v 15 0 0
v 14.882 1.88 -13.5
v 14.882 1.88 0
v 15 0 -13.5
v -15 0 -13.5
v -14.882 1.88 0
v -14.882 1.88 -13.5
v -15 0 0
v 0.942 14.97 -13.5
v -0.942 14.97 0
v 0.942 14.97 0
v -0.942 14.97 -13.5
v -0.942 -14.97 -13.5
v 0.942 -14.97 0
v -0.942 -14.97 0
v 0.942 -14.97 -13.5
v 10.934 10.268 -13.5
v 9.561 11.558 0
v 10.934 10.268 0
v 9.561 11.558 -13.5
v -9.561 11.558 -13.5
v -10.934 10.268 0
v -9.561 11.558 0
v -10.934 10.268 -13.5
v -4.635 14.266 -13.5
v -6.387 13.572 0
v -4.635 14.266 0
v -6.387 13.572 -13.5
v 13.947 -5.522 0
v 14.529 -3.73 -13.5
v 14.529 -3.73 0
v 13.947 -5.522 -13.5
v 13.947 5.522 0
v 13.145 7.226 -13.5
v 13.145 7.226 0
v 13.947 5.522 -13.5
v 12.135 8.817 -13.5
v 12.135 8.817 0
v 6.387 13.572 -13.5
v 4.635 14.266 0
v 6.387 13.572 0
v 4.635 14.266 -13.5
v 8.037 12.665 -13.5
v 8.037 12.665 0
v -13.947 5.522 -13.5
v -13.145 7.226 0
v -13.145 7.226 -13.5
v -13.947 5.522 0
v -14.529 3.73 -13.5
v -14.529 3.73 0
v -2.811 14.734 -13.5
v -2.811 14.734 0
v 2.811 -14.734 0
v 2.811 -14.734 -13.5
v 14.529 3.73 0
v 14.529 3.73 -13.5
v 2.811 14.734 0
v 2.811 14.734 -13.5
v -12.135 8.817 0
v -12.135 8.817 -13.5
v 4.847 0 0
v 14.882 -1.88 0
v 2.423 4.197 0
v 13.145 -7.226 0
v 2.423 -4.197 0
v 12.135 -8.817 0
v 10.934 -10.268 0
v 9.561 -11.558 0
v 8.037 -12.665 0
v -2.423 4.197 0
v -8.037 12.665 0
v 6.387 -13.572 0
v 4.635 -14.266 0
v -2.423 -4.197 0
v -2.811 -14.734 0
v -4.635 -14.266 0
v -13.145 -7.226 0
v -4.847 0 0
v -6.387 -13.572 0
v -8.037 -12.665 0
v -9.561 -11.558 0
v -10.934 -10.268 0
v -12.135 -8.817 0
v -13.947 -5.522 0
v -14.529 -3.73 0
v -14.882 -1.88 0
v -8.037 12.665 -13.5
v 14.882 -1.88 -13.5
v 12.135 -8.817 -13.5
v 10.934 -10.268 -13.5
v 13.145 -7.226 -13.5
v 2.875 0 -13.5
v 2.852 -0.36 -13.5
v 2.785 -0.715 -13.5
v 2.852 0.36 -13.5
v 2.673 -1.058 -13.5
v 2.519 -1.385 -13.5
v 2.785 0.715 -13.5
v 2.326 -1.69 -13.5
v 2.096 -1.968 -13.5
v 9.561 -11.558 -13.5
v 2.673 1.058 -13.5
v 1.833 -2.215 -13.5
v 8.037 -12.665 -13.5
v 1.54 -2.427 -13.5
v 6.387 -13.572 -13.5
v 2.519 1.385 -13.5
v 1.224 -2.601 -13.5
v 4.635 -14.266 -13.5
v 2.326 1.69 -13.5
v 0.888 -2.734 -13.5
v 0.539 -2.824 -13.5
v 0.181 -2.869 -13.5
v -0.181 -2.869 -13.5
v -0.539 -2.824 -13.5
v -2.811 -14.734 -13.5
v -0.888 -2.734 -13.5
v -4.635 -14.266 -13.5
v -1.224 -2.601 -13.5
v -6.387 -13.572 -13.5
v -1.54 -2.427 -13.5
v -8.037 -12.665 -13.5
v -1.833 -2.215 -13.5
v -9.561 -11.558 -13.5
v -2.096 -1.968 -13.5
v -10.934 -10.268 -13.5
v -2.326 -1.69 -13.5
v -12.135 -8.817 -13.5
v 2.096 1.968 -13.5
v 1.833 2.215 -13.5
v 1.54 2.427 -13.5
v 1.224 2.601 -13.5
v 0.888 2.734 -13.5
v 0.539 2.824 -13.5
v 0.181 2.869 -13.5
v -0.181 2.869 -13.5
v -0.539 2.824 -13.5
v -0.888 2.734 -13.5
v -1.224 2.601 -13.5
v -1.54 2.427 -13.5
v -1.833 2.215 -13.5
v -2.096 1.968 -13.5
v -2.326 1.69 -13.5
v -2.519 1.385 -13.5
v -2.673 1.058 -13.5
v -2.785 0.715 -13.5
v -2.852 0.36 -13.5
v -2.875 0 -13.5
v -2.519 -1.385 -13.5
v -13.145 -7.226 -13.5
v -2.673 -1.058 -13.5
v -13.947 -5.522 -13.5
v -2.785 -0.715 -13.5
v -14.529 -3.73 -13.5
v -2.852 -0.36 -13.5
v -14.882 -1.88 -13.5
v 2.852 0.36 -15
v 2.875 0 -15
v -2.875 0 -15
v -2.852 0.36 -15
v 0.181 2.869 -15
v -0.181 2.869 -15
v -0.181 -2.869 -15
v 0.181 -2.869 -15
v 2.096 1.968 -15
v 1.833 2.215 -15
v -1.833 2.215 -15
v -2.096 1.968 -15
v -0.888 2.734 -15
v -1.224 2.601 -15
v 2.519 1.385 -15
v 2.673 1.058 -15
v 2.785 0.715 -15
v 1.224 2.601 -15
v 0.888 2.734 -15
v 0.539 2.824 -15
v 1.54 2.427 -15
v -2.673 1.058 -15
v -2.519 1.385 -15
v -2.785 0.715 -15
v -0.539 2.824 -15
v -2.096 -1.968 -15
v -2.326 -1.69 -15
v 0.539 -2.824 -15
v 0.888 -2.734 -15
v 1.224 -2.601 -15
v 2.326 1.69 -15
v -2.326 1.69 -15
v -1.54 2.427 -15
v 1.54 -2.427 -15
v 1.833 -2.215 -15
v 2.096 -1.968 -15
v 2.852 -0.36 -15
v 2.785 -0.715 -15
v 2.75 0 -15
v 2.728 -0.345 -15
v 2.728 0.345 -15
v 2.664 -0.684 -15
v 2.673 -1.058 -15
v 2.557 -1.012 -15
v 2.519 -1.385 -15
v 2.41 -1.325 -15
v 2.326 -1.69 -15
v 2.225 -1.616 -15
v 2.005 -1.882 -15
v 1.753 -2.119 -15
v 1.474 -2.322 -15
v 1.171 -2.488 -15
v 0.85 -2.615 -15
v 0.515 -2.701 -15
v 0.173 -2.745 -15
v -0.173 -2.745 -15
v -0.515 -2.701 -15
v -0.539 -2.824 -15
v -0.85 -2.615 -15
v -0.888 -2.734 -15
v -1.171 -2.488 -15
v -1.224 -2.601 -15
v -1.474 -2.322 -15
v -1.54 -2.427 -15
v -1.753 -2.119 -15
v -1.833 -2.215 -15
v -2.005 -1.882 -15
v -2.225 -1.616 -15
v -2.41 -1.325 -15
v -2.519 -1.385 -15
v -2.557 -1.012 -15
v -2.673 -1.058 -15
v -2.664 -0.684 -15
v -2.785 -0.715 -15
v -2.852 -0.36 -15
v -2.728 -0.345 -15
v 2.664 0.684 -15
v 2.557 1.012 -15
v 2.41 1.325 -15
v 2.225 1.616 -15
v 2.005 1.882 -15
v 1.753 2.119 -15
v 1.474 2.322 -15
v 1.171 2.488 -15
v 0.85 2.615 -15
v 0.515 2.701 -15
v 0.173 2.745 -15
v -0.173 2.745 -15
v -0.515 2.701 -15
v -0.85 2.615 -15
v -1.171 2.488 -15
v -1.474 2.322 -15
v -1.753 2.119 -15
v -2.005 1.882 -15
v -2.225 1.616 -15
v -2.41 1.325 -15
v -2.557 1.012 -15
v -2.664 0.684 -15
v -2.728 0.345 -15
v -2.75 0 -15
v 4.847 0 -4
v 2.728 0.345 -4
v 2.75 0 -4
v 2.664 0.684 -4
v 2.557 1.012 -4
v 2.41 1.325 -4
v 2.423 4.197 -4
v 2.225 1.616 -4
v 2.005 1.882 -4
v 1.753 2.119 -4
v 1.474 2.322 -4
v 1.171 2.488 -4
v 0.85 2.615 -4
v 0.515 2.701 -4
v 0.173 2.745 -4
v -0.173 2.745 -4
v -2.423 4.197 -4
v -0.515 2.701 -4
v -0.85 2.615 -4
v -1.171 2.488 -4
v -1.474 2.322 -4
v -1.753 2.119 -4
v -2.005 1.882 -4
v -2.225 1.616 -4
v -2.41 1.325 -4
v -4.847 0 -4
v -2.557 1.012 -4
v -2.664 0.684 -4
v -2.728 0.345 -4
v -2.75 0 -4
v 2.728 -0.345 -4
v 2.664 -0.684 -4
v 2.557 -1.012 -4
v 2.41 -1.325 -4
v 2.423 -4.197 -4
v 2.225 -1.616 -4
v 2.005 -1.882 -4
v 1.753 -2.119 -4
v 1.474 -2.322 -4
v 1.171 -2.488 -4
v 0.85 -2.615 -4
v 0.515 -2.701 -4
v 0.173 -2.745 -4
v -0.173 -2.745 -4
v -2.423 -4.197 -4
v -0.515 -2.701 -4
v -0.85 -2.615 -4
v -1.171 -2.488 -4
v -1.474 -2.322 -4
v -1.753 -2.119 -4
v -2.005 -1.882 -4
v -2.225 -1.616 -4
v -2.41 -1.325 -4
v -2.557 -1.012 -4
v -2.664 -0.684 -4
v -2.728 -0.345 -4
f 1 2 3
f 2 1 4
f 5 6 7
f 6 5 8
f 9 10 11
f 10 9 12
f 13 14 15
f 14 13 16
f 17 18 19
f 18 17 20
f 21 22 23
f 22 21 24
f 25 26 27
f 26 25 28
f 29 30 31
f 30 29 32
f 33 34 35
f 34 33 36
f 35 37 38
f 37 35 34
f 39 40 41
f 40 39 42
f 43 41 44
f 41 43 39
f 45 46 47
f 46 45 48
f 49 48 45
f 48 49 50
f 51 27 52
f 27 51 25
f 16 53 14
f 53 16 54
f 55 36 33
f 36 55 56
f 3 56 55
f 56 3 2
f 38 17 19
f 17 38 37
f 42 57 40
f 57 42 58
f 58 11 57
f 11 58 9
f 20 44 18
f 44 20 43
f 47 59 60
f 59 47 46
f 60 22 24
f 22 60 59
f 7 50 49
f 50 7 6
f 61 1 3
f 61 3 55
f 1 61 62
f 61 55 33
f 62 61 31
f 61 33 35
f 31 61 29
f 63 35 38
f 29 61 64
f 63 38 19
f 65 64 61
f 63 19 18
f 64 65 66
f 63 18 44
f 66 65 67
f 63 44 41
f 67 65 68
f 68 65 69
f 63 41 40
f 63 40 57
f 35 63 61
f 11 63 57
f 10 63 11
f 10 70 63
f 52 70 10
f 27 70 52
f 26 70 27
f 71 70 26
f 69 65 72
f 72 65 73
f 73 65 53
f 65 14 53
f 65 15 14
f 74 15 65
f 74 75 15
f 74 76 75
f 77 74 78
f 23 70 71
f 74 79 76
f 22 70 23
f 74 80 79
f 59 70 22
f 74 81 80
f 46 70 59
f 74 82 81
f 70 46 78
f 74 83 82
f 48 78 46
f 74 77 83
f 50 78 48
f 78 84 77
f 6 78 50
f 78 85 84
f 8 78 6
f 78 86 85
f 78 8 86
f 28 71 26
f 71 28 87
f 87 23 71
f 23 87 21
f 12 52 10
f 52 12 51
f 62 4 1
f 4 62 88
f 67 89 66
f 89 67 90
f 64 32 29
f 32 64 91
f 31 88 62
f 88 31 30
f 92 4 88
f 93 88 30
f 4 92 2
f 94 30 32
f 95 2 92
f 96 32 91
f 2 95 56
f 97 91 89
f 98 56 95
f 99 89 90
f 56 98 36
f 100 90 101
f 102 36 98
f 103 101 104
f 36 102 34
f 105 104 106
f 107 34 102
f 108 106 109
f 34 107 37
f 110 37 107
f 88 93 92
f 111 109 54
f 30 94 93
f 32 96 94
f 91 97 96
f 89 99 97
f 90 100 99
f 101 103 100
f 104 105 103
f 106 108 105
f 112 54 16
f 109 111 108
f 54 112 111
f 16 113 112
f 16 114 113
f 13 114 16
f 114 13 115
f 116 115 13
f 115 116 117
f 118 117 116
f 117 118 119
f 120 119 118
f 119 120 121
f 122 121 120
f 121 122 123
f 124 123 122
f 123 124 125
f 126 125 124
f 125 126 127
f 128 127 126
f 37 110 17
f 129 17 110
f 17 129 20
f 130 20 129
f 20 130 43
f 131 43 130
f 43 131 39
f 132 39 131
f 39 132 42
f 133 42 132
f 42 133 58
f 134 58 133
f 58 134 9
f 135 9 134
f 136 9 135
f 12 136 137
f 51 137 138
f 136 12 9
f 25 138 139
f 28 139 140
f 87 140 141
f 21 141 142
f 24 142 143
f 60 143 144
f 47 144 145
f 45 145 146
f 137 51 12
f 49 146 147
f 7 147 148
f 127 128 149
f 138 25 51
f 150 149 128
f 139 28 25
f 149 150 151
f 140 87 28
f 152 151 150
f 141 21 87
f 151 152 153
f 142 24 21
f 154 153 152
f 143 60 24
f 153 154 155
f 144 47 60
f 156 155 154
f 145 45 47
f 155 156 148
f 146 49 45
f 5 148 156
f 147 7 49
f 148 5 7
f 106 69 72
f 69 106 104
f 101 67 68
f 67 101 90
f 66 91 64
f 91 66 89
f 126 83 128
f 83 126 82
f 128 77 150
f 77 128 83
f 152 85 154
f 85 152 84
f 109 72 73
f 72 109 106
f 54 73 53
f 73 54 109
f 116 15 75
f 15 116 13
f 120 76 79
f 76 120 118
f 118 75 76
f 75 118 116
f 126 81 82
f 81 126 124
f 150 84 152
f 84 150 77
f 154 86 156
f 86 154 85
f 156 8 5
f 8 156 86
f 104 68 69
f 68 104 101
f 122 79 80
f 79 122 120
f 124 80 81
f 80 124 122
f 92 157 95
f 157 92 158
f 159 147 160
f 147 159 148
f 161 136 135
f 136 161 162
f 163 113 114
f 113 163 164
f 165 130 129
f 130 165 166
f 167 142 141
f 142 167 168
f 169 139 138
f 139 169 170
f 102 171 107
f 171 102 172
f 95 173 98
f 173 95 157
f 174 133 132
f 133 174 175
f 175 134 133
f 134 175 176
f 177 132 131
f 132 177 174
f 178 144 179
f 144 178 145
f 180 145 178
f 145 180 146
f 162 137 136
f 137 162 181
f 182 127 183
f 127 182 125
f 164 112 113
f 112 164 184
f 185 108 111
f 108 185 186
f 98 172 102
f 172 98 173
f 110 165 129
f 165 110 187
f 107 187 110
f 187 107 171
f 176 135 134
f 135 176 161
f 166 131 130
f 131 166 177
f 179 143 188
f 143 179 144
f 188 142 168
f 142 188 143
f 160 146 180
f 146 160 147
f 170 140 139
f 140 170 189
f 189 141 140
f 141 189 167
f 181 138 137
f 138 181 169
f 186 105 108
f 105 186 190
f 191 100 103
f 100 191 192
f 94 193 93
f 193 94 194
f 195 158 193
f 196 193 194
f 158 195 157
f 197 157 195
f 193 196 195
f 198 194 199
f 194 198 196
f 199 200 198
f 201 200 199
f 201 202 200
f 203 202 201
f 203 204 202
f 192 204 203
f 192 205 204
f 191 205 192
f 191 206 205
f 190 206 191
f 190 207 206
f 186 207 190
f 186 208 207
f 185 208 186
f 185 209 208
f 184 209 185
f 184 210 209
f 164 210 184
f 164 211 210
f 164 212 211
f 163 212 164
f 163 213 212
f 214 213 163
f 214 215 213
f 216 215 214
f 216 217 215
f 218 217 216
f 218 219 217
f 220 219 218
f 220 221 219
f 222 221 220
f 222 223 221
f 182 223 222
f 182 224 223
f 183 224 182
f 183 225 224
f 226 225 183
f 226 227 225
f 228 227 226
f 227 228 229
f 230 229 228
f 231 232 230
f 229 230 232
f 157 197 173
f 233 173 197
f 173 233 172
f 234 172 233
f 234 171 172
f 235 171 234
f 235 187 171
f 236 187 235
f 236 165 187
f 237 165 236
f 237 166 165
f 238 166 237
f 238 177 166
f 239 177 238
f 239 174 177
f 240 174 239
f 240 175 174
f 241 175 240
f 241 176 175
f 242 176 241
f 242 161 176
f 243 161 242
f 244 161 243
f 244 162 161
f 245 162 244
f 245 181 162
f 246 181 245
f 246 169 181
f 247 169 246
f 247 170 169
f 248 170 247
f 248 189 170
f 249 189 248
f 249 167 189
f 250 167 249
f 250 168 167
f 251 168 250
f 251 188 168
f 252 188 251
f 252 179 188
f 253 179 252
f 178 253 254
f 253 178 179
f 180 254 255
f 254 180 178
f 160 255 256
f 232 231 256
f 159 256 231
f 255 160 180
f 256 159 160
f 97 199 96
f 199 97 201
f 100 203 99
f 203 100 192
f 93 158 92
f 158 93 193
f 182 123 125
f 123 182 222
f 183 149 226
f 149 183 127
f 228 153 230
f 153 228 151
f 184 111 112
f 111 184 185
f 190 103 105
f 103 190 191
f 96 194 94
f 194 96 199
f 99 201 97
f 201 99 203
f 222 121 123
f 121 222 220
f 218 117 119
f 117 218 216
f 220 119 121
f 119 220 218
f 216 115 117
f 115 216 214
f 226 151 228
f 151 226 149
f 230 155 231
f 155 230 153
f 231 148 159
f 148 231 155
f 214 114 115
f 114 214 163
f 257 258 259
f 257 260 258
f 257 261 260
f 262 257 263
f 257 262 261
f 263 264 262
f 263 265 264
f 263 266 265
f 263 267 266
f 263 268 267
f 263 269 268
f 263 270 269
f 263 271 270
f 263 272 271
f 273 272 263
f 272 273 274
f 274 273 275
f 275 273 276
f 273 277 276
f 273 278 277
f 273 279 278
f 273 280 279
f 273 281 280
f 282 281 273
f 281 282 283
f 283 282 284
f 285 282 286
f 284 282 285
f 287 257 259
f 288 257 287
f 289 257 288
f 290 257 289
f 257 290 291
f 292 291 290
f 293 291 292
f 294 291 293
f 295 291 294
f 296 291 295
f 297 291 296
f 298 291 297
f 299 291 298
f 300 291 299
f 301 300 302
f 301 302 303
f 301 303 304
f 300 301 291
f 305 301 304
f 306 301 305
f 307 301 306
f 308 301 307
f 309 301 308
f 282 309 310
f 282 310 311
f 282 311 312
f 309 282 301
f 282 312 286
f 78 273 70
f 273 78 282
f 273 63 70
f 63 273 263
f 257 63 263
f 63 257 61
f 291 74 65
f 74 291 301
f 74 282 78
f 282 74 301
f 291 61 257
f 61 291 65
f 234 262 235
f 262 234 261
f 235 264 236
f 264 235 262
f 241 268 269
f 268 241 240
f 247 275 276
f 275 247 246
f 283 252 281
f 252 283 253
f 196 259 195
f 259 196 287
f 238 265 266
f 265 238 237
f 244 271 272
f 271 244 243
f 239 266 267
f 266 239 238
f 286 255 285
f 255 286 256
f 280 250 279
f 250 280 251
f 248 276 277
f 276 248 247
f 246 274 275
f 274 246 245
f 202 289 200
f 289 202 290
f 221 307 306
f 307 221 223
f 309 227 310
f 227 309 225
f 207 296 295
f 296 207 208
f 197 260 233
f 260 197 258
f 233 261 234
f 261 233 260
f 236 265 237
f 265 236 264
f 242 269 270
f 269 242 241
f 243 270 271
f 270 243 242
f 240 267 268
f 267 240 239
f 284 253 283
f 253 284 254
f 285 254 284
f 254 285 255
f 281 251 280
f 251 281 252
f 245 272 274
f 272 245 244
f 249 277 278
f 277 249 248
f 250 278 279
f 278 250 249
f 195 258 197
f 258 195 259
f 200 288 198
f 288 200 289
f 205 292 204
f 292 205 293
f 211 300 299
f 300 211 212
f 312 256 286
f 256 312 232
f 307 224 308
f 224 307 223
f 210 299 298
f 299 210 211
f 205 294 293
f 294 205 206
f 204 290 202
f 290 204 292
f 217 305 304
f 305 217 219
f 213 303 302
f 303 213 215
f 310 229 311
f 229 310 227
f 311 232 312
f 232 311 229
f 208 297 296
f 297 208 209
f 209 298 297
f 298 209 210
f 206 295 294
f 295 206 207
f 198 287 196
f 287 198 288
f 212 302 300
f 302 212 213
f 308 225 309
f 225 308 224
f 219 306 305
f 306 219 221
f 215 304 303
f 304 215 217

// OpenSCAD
$fn = 50;


difference() {
	union() {
		translate(v = [0, 0, -13.5000000000]) {
			cylinder(h = 13.5000000000, r = 15.0000000000);
		}
		translate(v = [0, 0, -15.0000000000]) {
			cylinder(h = 15, r = 2.8750000000);
		}
	}
	union() {
		translate(v = [0, 0, 0]) {
			rotate(a = [0, 0, 0]) {
				difference() {
					union() {
						translate(v = [0, 0, -4]) {
							linear_extrude(height = 4) {
								polygon(points = [[4.8468000000, 0.0000000000], [2.4234000000, 4.1974519271], [-2.4234000000, 4.1974519271], [-4.8468000000, 0.0000000000], [-2.4234000000, -4.1974519271], [2.4234000000, -4.1974519271]]);
							}
						}
					}
					union();
				}
			}
		}
		#translate(v = [0, 0, -100.0000000000]) {
			cylinder(h = 200, r = 2.7500000000);
		}
	}
}
